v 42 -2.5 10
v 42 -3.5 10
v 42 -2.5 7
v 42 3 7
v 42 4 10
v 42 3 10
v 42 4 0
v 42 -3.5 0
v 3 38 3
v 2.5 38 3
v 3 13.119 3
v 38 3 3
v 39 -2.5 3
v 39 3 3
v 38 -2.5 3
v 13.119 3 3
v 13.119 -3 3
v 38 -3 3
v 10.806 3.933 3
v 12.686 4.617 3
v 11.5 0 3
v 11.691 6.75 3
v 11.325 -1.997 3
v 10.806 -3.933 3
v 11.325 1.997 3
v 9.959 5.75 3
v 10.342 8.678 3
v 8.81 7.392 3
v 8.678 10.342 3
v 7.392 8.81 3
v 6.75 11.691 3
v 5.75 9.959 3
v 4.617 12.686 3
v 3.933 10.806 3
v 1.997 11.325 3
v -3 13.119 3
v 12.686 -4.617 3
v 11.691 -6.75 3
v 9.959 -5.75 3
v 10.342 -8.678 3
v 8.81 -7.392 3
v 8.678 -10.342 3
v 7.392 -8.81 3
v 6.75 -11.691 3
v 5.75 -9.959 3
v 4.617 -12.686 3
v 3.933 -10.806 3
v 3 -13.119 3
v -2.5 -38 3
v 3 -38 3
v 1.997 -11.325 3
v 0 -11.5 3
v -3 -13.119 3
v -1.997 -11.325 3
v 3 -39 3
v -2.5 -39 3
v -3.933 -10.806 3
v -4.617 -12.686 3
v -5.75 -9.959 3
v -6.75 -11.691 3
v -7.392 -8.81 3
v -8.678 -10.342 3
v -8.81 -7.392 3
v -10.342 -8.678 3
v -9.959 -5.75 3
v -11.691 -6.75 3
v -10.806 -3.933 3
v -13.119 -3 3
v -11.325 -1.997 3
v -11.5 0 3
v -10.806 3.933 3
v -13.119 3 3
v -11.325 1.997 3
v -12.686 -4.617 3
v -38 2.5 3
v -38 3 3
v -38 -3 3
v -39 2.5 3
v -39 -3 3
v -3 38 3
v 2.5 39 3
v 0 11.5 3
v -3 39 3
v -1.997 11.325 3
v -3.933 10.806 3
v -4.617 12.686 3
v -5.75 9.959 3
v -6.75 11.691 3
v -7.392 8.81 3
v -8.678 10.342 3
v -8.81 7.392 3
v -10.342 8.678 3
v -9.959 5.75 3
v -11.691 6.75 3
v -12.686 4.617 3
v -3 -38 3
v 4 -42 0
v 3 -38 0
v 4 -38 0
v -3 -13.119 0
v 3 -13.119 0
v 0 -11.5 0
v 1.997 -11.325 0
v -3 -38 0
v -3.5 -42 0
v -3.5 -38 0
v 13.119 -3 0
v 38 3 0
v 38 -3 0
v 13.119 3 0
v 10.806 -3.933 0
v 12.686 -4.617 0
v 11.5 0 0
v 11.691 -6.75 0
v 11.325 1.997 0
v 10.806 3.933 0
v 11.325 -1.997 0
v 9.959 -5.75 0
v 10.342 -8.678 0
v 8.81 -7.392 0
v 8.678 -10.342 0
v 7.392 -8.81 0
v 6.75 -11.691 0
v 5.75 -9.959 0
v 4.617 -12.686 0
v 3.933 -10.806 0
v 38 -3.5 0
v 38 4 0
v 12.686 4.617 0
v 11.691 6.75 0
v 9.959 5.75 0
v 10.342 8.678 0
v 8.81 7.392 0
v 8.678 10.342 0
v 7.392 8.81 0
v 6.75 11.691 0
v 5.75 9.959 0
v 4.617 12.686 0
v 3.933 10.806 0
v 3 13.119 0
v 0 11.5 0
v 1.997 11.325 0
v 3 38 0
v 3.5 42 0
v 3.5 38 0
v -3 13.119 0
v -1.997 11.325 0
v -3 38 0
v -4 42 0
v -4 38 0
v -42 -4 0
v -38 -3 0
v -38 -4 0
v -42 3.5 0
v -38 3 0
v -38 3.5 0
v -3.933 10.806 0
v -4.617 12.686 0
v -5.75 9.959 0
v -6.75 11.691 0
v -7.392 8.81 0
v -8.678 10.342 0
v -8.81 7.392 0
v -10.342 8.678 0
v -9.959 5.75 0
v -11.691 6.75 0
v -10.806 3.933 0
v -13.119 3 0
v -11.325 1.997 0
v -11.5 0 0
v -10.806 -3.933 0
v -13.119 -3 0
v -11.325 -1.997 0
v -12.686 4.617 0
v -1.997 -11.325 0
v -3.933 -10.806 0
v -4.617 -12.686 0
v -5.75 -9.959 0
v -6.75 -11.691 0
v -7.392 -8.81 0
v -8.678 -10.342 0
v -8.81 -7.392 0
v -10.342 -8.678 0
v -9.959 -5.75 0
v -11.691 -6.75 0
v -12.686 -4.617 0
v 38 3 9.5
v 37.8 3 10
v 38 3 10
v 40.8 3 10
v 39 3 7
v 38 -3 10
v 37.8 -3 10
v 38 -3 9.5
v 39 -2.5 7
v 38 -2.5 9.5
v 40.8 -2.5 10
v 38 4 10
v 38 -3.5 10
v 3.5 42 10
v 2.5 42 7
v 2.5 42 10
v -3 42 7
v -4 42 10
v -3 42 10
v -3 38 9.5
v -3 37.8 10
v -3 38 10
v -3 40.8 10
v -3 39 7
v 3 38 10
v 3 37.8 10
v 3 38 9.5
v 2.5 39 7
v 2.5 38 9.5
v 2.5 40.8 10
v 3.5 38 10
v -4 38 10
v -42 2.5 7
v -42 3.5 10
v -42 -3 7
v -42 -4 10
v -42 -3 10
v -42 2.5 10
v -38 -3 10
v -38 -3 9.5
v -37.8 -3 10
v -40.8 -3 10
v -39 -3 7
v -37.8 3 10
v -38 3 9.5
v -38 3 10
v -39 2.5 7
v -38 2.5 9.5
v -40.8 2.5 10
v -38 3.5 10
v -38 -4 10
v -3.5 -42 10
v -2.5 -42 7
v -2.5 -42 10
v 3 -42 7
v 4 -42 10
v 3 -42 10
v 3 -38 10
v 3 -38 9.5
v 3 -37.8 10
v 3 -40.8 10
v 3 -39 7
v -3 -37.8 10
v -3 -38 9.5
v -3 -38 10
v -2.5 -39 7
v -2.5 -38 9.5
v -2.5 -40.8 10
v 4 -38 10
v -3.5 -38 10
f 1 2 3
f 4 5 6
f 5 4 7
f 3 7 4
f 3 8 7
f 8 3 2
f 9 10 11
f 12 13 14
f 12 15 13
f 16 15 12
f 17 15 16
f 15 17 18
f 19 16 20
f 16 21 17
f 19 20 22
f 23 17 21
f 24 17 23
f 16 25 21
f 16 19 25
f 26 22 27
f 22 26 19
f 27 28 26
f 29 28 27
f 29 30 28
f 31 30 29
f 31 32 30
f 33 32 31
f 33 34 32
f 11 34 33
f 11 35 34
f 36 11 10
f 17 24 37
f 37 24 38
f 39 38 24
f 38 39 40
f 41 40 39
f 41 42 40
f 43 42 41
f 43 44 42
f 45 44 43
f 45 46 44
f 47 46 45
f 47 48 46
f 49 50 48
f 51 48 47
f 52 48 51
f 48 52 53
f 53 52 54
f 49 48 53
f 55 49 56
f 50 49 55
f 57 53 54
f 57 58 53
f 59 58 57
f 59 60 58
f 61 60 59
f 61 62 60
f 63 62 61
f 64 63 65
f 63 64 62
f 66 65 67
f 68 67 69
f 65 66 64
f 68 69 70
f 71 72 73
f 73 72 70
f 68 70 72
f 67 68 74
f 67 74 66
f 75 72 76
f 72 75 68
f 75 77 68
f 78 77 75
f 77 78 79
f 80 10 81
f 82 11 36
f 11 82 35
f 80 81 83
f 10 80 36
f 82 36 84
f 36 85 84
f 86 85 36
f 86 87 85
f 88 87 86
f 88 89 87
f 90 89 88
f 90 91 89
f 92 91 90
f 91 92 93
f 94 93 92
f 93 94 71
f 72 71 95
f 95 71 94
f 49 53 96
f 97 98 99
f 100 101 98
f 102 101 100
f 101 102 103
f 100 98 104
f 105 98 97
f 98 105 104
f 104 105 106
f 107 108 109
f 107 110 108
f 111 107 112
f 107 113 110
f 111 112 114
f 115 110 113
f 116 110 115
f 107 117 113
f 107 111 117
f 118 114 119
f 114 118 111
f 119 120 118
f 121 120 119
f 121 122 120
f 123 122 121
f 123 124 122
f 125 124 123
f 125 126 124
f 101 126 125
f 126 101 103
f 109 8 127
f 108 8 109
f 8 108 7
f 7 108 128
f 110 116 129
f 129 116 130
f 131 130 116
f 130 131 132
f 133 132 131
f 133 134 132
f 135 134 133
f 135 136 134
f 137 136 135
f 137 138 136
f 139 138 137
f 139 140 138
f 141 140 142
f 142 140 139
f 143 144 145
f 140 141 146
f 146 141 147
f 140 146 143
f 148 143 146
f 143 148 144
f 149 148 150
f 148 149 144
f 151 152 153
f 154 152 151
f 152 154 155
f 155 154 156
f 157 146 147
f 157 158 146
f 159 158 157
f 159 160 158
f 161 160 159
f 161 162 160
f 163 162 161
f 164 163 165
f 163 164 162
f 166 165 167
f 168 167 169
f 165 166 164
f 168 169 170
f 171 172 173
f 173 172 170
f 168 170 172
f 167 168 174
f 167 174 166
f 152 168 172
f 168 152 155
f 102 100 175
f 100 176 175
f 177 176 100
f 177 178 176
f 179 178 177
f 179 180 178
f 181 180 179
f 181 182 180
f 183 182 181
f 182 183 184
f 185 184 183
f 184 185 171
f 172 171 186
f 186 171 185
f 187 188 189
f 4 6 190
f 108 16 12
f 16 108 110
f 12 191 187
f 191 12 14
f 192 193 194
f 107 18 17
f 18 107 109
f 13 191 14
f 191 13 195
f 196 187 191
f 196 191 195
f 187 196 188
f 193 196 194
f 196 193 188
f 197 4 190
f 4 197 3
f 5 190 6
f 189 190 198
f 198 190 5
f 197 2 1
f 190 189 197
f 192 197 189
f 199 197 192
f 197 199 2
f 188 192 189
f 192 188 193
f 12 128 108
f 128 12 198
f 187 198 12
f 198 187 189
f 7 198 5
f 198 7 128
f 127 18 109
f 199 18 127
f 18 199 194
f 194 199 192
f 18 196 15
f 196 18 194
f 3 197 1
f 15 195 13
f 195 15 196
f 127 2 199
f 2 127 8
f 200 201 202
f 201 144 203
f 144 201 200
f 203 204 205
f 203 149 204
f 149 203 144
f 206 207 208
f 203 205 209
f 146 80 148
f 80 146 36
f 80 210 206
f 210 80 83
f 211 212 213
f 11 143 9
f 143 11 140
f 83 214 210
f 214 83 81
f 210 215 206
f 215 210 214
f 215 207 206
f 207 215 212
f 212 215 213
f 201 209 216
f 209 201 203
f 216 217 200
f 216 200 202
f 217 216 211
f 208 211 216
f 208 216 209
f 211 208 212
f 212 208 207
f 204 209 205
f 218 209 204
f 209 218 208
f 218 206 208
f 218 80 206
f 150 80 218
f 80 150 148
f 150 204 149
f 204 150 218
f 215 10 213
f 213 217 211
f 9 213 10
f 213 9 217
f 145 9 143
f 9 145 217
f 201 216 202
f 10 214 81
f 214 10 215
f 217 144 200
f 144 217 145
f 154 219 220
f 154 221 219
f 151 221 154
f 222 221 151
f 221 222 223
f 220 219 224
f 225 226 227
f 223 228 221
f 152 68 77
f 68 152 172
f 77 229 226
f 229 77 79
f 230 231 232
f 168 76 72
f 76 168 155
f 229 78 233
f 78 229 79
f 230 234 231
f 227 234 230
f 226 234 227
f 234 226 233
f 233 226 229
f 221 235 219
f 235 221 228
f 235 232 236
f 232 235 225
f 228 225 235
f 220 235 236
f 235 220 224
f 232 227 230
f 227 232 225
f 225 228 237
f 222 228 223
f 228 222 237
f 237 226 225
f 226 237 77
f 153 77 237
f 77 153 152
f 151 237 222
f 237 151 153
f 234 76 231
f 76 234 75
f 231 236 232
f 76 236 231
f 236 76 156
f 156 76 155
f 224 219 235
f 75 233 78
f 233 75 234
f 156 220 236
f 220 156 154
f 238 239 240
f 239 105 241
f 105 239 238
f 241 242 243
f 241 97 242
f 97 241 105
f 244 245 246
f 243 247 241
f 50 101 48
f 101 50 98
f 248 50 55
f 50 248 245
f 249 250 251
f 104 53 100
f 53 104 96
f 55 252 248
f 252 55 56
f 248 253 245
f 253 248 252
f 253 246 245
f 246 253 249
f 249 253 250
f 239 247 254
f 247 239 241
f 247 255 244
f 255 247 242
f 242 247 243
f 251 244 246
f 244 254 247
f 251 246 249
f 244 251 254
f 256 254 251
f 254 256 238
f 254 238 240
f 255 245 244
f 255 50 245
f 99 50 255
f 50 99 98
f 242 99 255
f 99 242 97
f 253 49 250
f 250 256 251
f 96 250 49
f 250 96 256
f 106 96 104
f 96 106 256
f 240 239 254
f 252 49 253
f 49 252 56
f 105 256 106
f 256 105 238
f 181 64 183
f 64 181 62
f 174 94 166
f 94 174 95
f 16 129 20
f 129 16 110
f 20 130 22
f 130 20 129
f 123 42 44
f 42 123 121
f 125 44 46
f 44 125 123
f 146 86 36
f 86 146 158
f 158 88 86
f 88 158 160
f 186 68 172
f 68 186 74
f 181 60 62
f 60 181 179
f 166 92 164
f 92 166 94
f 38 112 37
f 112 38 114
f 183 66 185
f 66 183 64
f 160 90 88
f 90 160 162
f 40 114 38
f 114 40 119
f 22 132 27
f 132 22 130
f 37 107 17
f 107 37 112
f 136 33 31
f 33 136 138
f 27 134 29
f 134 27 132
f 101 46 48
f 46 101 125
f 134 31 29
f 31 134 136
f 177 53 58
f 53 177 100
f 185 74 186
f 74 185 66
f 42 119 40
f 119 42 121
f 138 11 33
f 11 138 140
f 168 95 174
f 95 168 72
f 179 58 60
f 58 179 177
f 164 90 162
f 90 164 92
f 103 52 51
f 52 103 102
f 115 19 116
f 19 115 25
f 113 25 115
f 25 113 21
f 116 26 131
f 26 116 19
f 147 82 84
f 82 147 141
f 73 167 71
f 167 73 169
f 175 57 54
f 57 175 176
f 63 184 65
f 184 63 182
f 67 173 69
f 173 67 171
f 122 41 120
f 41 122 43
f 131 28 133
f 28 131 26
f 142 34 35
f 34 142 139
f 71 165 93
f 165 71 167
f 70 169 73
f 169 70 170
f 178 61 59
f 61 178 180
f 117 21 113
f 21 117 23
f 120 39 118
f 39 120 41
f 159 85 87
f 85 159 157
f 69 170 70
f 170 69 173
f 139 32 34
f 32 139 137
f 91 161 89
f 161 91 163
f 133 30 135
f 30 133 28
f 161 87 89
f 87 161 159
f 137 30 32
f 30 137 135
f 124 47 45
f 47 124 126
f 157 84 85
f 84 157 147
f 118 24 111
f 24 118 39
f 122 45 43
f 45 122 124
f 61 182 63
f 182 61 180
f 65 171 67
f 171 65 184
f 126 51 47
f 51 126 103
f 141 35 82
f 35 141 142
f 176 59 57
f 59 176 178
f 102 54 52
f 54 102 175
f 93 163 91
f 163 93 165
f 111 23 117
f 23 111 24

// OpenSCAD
$fn = 36;
h1 = 3; // inner ring height
h2 = 7; // guide height
h3 = 3; // clearance from //e mounting tab to case floor
r1 = 11.5; // inner radius of speaker grabber
r2 = 13.5; // outer radius of speaker grabber
r3 = 39;
r4 = 42;
strut_w = 6;
strut_l = 42;

module strut()
{
    union()
    {
        translate([0,-strut_w/2,0])
        { cube([strut_l,strut_w,h1]) {} }
        translate([r3,-strut_w/2,0])
        { cube([r4-r3,strut_w,h2]) {} }
        multmatrix([[1,0,-0.4,r3],[0,1,0,-strut_w/2],[0,0,1,h2],[0,0,0,1]])
        { cube([r4-r3,strut_w,h3]) {} }
        translate([38,strut_w/2,0])
        { cube([strut_l-38,1,10]) {} }
        translate([38,-strut_w/2-0.5,0])
        { cube([strut_l-38,1,10]) {} }
    }
}

difference()
{
    union()
    {
        cylinder(h1,r2,r2) {}
        strut();
        rotate([0,0,90]) { strut(); }
        rotate([0,0,180]) { strut(); }
        rotate([0,0,270]) { strut(); }
    }
    cylinder(h1,r1,r1) {}
}
